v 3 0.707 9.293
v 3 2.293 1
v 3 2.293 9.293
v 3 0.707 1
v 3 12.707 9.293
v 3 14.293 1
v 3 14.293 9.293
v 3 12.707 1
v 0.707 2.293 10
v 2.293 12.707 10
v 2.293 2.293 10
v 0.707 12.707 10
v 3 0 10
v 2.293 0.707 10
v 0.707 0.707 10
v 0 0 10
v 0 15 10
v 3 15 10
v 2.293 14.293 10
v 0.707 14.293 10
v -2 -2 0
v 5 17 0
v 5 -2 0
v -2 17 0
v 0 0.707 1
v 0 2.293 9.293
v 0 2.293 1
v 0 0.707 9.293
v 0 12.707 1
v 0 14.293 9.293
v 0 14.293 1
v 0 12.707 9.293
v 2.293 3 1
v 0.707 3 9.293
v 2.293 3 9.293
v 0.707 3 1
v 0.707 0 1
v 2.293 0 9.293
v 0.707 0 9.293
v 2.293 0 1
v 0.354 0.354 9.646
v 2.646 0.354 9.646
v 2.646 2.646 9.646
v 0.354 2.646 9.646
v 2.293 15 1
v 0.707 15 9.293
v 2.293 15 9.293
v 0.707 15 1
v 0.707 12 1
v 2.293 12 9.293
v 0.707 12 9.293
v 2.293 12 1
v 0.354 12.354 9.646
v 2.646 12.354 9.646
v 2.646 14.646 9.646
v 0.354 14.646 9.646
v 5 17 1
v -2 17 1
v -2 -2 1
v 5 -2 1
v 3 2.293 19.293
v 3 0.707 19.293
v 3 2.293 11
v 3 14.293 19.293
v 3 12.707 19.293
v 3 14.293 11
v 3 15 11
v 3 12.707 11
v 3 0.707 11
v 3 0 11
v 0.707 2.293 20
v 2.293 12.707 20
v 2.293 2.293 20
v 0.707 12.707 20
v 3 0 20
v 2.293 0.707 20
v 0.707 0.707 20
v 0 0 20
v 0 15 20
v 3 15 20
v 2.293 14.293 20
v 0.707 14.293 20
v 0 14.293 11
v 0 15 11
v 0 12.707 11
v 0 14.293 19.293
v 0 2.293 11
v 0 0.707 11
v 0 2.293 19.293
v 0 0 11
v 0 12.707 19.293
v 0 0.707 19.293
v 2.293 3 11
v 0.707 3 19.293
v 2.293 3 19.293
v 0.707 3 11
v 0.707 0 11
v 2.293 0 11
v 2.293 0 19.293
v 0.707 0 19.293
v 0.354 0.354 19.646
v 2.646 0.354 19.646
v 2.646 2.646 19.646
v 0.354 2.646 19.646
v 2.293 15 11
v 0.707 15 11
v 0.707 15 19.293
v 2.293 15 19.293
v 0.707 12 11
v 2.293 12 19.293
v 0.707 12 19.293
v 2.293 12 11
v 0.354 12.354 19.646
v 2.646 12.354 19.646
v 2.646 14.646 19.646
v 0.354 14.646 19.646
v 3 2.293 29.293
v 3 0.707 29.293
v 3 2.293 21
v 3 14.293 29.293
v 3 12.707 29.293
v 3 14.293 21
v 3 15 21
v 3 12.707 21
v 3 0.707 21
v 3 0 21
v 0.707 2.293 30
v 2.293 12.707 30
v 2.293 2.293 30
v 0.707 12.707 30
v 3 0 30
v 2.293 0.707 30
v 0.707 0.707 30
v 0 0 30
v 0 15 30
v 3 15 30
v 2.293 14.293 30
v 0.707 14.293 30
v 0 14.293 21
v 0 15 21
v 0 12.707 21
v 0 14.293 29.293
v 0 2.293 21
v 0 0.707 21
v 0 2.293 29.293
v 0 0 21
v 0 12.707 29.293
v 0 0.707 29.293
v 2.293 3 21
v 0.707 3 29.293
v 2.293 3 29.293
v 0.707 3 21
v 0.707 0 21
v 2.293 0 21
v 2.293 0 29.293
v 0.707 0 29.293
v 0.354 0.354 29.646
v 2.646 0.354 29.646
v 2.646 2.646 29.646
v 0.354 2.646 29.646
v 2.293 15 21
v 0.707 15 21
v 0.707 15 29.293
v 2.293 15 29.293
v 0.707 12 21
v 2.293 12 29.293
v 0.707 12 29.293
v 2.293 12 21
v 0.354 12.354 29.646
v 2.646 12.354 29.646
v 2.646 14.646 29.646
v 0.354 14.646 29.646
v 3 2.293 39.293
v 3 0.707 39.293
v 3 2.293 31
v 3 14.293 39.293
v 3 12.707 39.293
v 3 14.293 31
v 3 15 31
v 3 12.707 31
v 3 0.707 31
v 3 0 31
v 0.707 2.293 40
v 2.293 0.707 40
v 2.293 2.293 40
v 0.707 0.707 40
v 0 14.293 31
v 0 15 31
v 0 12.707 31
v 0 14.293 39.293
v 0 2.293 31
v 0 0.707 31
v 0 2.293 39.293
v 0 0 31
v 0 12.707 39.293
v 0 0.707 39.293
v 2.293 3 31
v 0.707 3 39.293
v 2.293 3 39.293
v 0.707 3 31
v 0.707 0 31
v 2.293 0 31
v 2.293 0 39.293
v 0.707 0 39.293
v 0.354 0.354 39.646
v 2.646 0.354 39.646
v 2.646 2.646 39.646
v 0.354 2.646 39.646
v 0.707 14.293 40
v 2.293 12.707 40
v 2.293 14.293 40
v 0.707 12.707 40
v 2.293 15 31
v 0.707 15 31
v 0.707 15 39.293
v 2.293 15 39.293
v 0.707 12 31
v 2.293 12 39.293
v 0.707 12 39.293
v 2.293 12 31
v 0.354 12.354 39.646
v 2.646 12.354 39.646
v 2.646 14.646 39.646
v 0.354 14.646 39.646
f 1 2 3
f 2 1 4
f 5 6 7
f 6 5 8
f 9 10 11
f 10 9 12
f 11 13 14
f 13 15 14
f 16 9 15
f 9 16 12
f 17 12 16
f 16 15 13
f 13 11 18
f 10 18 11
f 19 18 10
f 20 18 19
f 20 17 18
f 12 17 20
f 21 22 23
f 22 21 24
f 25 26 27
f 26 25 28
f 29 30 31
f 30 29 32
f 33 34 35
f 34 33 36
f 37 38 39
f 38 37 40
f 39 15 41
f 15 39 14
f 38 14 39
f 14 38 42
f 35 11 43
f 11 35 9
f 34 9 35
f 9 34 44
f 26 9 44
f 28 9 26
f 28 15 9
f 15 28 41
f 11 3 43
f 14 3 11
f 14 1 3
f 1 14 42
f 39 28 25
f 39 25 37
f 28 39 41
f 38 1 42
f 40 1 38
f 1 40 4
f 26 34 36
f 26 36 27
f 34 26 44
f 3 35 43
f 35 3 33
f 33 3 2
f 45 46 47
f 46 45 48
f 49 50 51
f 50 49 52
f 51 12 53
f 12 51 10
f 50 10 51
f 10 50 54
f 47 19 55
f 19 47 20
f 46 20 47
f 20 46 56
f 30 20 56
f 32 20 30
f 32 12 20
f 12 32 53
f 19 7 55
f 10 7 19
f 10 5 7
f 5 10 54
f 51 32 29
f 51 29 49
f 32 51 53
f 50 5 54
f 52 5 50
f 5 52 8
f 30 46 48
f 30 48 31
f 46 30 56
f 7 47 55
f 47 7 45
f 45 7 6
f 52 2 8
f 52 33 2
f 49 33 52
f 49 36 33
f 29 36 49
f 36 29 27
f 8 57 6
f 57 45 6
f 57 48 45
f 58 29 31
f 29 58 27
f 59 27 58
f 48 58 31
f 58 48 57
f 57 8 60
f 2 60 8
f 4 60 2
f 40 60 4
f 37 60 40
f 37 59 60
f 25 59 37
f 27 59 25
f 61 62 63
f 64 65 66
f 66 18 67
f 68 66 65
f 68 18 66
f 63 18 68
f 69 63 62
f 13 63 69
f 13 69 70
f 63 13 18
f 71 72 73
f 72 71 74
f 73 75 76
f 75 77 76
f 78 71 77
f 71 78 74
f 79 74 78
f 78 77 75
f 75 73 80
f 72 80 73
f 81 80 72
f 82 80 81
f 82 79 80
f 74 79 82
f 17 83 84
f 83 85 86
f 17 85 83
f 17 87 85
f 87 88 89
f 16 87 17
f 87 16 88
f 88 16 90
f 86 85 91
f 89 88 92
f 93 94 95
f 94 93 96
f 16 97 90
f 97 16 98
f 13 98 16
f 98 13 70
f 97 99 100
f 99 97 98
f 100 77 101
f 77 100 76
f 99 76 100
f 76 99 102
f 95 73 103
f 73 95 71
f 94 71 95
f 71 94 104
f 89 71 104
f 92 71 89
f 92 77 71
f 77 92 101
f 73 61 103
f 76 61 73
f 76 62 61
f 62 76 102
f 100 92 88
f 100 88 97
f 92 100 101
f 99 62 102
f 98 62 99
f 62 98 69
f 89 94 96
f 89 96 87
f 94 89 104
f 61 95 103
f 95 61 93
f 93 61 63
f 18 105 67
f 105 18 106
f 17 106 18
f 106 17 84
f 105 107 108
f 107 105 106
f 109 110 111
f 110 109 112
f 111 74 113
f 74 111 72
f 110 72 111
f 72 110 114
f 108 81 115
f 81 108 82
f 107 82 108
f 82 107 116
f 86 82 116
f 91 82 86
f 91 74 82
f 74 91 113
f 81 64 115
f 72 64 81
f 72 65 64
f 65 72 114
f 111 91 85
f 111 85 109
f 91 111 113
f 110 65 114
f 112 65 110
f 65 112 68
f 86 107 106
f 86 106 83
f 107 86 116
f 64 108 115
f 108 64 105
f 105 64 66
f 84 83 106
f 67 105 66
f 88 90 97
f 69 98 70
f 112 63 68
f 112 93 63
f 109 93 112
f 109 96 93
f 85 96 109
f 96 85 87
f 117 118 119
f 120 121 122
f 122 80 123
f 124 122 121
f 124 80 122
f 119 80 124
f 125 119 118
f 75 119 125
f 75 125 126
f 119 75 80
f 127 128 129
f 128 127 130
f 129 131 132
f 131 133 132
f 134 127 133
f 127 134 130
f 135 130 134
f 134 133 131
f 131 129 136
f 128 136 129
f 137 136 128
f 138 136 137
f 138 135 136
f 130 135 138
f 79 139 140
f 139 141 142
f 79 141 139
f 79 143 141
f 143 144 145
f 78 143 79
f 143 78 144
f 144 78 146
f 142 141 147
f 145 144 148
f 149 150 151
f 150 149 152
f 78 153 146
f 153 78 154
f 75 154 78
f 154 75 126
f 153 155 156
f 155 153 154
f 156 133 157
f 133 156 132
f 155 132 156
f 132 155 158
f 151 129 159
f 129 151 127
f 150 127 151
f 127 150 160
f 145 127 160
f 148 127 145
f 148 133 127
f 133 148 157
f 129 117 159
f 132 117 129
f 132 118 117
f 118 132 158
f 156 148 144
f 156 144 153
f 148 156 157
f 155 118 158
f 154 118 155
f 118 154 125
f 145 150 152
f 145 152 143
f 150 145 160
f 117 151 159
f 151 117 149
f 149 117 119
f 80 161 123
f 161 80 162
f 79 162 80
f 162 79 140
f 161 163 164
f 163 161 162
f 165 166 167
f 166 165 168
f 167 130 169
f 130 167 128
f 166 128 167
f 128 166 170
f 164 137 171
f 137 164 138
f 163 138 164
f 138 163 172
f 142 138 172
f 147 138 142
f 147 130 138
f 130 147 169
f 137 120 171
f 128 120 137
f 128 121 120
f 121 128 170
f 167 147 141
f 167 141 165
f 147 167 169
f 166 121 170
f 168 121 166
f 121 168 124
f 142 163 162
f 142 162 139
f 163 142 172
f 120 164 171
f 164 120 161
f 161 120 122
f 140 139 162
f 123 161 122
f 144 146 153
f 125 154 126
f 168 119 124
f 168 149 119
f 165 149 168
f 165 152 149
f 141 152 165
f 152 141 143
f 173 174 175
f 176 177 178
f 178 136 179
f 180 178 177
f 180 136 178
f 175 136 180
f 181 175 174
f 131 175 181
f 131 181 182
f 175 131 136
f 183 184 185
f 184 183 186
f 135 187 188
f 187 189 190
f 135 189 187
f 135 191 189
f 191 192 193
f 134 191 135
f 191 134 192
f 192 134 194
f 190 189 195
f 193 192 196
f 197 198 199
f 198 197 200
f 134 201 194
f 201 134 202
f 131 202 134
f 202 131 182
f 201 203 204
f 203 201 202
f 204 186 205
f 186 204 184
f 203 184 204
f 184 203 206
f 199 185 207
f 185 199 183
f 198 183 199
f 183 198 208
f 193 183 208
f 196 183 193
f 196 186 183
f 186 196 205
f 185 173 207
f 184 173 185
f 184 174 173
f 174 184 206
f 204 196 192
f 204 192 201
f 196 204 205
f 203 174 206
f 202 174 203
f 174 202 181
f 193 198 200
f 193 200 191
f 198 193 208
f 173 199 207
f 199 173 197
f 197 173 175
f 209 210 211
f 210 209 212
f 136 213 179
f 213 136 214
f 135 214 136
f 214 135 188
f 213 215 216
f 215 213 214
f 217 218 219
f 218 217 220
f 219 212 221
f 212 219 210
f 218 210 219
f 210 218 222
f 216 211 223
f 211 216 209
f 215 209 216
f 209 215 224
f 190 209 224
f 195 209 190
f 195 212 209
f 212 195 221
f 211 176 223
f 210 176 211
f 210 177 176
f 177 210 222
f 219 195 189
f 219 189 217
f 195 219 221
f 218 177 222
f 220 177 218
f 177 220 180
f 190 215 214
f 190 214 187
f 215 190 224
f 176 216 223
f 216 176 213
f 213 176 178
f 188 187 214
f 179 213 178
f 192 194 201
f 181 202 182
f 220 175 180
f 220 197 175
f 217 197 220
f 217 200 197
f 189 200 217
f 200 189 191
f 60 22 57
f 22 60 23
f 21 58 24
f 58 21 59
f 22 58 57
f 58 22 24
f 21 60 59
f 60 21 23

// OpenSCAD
// file: ../primitives/chamfers.scad
module chamfered_cube(x,y,z,edge){
    difference(){
        cube([x,y,z]);
        
        
        // Buttom Cuts
        translate([0,0,(-sqrt(2)*(edge))/2])
            rotate([45,0,0])
                cube([x,edge,edge]);
        
        translate([0,y,(-sqrt(2)*(edge))/2])
            rotate([45,0,0])
                cube([x,edge,edge]);
        
        translate([0,0,(-sqrt(2)*(edge))/2])
            rotate([0,-45,0])
                cube([edge,y,edge]);
        
        translate([x,0,(-sqrt(2)*(edge))/2])
            rotate([0,-45,0])
                cube([edge,y,edge]);
        
        // Top Cuts
        translate([0,0,z-(sqrt(2)*(edge))/2])
            rotate([45,0,0])
                cube([x,edge,edge]);
        
        translate([0,y,z-(sqrt(2)*(edge))/2])
            rotate([45,0,0])
                cube([x,edge,edge]);
        
        translate([0,0,z-(sqrt(2)*(edge))/2])
            rotate([0,-45,0])
                cube([edge,y,edge]);
        
        translate([x,0,z-(sqrt(2)*(edge))/2])
            rotate([0,-45,0])
                cube([edge,y,edge]);
                
        // Side Cuts
        translate([0,-(sqrt(2)*(edge))/2,0])
            rotate([0,0,45])
                cube([edge,edge,z]);
                
        translate([x,-(sqrt(2)*(edge))/2,0])
            rotate([0,0,45])
                cube([edge,edge,z]);
                

        translate([0,y-(sqrt(2)*(edge))/2,0])
            rotate([0,0,45])
                cube([edge,edge,z]);
                
        translate([x,y-(sqrt(2)*(edge))/2,0])
            rotate([0,0,45])
                cube([edge,edge,z]);

        
    }
  
}


module chamfered_box(x,y,z,edge,wall_thickness){
    difference(){
        chamfered_cube(x,y,z,edge);
        
        translate([wall_thickness, wall_thickness,wall_thickness])
            chamfered_cube(x-wall_thickness*2,
                       y-wall_thickness*2,
                       z-wall_thickness*2,
                       edge/sqrt(2));
            
    }
}

module chamfered_square_ring(x,y,thickness,edge){
    chamfered_cube(x,thickness,thickness,edge);
    chamfered_cube(thickness,y,thickness,edge);
    translate([0,y-thickness,0])
        chamfered_cube(x,thickness,thickness,edge);
    translate([x-thickness,0,0])
        chamfered_cube(thickness,y,thickness,edge);

}

module chamfered_main(){
    chamfered_square_ring(10,20,3,1);
    
}

//chamfered_main();
// main file
include <../primitives/chamfers.scad>;

pillar_width = 3;
pillar_height = 10;
pillar_spacing = 15;
base_height = 1;

padding = 2;
translate([-padding,-padding,0]){
    cube([pillar_width+2*padding,pillar_spacing+2*padding, base_height]);
}


for( z= [0,10,20,30]){
    translate([0,0,z]){
        cube([pillar_width,pillar_spacing,base_height]);
        chamfered_cube(pillar_width,pillar_width,pillar_height,1);
        translate([0,pillar_spacing-pillar_width,0])
            chamfered_cube(pillar_width,pillar_width,pillar_height,1);
    }
}
